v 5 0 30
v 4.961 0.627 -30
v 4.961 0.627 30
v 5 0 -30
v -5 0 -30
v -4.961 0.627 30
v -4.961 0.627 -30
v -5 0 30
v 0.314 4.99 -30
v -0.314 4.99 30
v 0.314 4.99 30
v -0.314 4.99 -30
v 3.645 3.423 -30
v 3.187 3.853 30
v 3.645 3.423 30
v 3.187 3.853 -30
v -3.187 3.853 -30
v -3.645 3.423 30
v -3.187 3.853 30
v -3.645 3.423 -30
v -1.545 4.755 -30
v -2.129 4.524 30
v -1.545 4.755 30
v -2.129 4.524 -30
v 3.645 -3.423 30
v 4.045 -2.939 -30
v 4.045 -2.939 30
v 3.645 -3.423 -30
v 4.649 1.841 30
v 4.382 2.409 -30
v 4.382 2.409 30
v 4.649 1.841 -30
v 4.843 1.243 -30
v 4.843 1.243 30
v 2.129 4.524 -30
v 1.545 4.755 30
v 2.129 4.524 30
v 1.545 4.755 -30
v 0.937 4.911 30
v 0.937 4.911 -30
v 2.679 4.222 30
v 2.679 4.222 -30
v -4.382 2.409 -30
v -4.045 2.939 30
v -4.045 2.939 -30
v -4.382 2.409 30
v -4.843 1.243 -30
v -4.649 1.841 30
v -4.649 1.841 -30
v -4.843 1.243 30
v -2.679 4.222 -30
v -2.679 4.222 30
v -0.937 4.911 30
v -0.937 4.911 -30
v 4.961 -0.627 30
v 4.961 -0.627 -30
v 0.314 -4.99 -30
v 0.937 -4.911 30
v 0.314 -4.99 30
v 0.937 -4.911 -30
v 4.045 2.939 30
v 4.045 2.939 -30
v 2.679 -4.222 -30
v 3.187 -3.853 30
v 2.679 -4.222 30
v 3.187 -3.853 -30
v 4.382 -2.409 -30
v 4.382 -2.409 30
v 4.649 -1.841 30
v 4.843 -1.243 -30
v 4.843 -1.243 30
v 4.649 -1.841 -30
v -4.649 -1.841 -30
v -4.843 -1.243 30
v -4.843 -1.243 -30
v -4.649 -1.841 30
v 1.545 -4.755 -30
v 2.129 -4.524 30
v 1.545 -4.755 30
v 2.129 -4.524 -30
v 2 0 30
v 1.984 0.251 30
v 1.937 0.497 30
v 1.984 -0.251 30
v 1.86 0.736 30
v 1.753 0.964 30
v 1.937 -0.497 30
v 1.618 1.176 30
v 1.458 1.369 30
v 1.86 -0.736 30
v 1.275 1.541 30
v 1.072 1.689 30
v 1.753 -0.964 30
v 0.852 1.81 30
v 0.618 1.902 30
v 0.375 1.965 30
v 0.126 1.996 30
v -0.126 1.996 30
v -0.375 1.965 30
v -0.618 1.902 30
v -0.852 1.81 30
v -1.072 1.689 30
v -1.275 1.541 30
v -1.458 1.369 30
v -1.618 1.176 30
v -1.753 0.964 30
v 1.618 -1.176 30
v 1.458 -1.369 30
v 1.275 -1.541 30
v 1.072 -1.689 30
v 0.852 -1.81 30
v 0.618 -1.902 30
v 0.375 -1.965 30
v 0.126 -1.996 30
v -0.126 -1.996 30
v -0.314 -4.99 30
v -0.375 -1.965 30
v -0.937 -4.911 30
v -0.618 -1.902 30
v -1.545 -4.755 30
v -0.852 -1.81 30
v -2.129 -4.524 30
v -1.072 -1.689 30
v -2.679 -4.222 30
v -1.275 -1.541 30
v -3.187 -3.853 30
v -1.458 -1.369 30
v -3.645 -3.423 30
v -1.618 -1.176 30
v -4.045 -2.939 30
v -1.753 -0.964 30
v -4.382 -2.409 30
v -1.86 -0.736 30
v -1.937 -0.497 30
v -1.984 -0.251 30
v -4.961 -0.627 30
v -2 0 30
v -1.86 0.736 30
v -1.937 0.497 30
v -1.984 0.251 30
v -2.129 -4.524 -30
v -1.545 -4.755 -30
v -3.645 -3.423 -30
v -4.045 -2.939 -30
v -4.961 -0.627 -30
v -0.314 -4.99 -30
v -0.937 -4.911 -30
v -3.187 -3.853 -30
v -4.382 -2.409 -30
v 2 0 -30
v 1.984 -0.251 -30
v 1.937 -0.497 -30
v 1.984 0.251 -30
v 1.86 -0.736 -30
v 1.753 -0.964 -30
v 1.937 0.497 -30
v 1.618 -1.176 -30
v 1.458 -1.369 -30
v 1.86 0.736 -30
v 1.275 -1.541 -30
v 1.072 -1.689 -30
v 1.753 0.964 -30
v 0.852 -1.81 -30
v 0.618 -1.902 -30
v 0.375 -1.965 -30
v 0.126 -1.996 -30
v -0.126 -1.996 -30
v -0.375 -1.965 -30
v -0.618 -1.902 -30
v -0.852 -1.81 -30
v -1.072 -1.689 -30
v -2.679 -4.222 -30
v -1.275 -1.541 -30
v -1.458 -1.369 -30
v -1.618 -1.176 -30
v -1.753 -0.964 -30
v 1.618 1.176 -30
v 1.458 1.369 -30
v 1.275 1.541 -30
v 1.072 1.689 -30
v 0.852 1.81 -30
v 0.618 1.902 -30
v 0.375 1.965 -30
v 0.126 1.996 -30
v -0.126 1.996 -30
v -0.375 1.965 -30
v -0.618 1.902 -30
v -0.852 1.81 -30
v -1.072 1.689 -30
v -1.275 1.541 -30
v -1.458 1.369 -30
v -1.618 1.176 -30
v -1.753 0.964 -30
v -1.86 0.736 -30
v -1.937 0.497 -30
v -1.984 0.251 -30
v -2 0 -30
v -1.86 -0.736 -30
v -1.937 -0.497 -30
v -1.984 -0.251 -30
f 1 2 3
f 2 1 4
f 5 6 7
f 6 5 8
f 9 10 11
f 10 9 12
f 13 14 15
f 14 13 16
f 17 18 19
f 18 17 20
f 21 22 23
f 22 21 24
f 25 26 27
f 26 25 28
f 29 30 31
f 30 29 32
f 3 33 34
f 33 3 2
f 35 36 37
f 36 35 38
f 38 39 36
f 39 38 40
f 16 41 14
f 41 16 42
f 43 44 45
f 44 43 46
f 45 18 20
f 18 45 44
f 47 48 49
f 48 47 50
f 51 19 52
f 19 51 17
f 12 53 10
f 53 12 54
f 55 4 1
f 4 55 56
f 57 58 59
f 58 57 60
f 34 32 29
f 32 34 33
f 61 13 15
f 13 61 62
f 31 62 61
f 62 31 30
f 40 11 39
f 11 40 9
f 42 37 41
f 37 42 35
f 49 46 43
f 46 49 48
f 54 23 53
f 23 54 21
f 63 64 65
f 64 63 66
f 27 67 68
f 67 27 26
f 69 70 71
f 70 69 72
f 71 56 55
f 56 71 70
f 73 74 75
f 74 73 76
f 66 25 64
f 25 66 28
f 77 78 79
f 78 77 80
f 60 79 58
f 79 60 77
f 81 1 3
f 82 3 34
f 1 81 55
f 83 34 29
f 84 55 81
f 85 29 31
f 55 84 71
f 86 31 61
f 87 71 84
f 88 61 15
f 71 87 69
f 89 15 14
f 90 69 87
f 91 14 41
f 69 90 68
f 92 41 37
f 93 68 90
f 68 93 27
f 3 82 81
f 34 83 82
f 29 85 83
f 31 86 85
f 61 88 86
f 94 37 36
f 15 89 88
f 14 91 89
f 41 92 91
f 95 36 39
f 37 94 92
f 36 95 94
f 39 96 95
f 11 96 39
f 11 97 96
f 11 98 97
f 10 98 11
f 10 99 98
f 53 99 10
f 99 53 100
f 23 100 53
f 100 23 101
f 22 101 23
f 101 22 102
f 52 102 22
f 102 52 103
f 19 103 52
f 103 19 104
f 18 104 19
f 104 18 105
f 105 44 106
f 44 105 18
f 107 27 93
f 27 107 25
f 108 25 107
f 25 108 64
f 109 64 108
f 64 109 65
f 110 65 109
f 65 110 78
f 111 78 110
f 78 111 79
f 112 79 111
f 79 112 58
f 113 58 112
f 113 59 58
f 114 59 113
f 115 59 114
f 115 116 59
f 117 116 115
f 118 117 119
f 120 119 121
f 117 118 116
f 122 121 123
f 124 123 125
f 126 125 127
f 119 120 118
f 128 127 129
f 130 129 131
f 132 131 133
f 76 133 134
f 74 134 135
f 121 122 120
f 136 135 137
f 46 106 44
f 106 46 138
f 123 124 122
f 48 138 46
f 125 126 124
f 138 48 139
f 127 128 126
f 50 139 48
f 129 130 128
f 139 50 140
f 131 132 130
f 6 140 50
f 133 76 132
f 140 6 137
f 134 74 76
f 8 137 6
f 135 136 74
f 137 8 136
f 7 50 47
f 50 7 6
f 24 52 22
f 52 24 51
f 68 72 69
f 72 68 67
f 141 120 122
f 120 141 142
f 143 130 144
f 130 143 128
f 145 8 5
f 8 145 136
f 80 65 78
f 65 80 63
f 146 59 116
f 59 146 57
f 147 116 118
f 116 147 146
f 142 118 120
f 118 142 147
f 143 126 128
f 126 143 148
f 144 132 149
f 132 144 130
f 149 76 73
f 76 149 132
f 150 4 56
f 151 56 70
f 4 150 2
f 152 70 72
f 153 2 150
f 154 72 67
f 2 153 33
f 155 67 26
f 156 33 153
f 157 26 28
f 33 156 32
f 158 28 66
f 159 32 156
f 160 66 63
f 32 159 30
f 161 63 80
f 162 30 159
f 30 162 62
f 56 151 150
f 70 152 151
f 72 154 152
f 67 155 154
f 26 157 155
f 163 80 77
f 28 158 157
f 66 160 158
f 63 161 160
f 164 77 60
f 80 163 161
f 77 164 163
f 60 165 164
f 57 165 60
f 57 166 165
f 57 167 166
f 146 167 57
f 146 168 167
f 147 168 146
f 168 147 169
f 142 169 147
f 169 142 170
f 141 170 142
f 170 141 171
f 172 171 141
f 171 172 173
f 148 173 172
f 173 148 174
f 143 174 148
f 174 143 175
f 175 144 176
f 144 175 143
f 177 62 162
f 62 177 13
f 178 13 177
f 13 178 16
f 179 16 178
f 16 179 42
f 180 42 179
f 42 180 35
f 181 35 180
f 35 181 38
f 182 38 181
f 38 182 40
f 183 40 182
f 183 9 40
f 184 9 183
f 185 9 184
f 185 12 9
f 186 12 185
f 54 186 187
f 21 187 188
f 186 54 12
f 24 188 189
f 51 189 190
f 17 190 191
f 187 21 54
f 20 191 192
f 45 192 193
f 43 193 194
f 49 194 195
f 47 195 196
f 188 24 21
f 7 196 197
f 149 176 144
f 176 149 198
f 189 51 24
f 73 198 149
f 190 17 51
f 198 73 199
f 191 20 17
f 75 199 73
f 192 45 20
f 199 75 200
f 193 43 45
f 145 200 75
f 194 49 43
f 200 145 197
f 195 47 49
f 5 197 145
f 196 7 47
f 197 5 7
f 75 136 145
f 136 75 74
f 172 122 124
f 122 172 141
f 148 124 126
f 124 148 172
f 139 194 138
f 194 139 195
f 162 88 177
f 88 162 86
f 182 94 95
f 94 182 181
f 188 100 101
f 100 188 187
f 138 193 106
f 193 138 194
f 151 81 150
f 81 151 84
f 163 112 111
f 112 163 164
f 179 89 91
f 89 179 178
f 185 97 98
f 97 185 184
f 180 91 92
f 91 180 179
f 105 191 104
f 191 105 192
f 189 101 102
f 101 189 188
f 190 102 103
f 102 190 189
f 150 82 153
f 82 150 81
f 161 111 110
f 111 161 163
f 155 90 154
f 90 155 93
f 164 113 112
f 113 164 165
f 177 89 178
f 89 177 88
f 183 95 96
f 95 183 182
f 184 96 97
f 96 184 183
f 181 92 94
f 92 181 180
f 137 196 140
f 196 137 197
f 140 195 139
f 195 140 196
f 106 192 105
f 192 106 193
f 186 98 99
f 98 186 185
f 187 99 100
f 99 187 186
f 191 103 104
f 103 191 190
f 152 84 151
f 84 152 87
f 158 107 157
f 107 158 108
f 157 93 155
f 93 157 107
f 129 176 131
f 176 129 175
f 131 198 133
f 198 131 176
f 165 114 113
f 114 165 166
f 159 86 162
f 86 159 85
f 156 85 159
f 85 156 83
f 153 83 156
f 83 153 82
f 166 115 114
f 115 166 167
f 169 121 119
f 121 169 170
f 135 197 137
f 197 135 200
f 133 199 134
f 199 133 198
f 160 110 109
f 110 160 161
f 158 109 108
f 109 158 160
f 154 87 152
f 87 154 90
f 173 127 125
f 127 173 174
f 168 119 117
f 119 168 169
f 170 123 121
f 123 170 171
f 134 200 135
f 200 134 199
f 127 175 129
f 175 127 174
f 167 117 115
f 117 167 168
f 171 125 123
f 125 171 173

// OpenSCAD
$fn = 50;


difference() {
	union() {
		translate(v = [0, 0, -30.0000000000]) {
			cylinder(h = 60, r = 5.0000000000);
		}
	}
	union() {
		translate(v = [0, 0, -100.0000000000]) {
			cylinder(h = 200, r = 2.0000000000);
		}
	}
}
